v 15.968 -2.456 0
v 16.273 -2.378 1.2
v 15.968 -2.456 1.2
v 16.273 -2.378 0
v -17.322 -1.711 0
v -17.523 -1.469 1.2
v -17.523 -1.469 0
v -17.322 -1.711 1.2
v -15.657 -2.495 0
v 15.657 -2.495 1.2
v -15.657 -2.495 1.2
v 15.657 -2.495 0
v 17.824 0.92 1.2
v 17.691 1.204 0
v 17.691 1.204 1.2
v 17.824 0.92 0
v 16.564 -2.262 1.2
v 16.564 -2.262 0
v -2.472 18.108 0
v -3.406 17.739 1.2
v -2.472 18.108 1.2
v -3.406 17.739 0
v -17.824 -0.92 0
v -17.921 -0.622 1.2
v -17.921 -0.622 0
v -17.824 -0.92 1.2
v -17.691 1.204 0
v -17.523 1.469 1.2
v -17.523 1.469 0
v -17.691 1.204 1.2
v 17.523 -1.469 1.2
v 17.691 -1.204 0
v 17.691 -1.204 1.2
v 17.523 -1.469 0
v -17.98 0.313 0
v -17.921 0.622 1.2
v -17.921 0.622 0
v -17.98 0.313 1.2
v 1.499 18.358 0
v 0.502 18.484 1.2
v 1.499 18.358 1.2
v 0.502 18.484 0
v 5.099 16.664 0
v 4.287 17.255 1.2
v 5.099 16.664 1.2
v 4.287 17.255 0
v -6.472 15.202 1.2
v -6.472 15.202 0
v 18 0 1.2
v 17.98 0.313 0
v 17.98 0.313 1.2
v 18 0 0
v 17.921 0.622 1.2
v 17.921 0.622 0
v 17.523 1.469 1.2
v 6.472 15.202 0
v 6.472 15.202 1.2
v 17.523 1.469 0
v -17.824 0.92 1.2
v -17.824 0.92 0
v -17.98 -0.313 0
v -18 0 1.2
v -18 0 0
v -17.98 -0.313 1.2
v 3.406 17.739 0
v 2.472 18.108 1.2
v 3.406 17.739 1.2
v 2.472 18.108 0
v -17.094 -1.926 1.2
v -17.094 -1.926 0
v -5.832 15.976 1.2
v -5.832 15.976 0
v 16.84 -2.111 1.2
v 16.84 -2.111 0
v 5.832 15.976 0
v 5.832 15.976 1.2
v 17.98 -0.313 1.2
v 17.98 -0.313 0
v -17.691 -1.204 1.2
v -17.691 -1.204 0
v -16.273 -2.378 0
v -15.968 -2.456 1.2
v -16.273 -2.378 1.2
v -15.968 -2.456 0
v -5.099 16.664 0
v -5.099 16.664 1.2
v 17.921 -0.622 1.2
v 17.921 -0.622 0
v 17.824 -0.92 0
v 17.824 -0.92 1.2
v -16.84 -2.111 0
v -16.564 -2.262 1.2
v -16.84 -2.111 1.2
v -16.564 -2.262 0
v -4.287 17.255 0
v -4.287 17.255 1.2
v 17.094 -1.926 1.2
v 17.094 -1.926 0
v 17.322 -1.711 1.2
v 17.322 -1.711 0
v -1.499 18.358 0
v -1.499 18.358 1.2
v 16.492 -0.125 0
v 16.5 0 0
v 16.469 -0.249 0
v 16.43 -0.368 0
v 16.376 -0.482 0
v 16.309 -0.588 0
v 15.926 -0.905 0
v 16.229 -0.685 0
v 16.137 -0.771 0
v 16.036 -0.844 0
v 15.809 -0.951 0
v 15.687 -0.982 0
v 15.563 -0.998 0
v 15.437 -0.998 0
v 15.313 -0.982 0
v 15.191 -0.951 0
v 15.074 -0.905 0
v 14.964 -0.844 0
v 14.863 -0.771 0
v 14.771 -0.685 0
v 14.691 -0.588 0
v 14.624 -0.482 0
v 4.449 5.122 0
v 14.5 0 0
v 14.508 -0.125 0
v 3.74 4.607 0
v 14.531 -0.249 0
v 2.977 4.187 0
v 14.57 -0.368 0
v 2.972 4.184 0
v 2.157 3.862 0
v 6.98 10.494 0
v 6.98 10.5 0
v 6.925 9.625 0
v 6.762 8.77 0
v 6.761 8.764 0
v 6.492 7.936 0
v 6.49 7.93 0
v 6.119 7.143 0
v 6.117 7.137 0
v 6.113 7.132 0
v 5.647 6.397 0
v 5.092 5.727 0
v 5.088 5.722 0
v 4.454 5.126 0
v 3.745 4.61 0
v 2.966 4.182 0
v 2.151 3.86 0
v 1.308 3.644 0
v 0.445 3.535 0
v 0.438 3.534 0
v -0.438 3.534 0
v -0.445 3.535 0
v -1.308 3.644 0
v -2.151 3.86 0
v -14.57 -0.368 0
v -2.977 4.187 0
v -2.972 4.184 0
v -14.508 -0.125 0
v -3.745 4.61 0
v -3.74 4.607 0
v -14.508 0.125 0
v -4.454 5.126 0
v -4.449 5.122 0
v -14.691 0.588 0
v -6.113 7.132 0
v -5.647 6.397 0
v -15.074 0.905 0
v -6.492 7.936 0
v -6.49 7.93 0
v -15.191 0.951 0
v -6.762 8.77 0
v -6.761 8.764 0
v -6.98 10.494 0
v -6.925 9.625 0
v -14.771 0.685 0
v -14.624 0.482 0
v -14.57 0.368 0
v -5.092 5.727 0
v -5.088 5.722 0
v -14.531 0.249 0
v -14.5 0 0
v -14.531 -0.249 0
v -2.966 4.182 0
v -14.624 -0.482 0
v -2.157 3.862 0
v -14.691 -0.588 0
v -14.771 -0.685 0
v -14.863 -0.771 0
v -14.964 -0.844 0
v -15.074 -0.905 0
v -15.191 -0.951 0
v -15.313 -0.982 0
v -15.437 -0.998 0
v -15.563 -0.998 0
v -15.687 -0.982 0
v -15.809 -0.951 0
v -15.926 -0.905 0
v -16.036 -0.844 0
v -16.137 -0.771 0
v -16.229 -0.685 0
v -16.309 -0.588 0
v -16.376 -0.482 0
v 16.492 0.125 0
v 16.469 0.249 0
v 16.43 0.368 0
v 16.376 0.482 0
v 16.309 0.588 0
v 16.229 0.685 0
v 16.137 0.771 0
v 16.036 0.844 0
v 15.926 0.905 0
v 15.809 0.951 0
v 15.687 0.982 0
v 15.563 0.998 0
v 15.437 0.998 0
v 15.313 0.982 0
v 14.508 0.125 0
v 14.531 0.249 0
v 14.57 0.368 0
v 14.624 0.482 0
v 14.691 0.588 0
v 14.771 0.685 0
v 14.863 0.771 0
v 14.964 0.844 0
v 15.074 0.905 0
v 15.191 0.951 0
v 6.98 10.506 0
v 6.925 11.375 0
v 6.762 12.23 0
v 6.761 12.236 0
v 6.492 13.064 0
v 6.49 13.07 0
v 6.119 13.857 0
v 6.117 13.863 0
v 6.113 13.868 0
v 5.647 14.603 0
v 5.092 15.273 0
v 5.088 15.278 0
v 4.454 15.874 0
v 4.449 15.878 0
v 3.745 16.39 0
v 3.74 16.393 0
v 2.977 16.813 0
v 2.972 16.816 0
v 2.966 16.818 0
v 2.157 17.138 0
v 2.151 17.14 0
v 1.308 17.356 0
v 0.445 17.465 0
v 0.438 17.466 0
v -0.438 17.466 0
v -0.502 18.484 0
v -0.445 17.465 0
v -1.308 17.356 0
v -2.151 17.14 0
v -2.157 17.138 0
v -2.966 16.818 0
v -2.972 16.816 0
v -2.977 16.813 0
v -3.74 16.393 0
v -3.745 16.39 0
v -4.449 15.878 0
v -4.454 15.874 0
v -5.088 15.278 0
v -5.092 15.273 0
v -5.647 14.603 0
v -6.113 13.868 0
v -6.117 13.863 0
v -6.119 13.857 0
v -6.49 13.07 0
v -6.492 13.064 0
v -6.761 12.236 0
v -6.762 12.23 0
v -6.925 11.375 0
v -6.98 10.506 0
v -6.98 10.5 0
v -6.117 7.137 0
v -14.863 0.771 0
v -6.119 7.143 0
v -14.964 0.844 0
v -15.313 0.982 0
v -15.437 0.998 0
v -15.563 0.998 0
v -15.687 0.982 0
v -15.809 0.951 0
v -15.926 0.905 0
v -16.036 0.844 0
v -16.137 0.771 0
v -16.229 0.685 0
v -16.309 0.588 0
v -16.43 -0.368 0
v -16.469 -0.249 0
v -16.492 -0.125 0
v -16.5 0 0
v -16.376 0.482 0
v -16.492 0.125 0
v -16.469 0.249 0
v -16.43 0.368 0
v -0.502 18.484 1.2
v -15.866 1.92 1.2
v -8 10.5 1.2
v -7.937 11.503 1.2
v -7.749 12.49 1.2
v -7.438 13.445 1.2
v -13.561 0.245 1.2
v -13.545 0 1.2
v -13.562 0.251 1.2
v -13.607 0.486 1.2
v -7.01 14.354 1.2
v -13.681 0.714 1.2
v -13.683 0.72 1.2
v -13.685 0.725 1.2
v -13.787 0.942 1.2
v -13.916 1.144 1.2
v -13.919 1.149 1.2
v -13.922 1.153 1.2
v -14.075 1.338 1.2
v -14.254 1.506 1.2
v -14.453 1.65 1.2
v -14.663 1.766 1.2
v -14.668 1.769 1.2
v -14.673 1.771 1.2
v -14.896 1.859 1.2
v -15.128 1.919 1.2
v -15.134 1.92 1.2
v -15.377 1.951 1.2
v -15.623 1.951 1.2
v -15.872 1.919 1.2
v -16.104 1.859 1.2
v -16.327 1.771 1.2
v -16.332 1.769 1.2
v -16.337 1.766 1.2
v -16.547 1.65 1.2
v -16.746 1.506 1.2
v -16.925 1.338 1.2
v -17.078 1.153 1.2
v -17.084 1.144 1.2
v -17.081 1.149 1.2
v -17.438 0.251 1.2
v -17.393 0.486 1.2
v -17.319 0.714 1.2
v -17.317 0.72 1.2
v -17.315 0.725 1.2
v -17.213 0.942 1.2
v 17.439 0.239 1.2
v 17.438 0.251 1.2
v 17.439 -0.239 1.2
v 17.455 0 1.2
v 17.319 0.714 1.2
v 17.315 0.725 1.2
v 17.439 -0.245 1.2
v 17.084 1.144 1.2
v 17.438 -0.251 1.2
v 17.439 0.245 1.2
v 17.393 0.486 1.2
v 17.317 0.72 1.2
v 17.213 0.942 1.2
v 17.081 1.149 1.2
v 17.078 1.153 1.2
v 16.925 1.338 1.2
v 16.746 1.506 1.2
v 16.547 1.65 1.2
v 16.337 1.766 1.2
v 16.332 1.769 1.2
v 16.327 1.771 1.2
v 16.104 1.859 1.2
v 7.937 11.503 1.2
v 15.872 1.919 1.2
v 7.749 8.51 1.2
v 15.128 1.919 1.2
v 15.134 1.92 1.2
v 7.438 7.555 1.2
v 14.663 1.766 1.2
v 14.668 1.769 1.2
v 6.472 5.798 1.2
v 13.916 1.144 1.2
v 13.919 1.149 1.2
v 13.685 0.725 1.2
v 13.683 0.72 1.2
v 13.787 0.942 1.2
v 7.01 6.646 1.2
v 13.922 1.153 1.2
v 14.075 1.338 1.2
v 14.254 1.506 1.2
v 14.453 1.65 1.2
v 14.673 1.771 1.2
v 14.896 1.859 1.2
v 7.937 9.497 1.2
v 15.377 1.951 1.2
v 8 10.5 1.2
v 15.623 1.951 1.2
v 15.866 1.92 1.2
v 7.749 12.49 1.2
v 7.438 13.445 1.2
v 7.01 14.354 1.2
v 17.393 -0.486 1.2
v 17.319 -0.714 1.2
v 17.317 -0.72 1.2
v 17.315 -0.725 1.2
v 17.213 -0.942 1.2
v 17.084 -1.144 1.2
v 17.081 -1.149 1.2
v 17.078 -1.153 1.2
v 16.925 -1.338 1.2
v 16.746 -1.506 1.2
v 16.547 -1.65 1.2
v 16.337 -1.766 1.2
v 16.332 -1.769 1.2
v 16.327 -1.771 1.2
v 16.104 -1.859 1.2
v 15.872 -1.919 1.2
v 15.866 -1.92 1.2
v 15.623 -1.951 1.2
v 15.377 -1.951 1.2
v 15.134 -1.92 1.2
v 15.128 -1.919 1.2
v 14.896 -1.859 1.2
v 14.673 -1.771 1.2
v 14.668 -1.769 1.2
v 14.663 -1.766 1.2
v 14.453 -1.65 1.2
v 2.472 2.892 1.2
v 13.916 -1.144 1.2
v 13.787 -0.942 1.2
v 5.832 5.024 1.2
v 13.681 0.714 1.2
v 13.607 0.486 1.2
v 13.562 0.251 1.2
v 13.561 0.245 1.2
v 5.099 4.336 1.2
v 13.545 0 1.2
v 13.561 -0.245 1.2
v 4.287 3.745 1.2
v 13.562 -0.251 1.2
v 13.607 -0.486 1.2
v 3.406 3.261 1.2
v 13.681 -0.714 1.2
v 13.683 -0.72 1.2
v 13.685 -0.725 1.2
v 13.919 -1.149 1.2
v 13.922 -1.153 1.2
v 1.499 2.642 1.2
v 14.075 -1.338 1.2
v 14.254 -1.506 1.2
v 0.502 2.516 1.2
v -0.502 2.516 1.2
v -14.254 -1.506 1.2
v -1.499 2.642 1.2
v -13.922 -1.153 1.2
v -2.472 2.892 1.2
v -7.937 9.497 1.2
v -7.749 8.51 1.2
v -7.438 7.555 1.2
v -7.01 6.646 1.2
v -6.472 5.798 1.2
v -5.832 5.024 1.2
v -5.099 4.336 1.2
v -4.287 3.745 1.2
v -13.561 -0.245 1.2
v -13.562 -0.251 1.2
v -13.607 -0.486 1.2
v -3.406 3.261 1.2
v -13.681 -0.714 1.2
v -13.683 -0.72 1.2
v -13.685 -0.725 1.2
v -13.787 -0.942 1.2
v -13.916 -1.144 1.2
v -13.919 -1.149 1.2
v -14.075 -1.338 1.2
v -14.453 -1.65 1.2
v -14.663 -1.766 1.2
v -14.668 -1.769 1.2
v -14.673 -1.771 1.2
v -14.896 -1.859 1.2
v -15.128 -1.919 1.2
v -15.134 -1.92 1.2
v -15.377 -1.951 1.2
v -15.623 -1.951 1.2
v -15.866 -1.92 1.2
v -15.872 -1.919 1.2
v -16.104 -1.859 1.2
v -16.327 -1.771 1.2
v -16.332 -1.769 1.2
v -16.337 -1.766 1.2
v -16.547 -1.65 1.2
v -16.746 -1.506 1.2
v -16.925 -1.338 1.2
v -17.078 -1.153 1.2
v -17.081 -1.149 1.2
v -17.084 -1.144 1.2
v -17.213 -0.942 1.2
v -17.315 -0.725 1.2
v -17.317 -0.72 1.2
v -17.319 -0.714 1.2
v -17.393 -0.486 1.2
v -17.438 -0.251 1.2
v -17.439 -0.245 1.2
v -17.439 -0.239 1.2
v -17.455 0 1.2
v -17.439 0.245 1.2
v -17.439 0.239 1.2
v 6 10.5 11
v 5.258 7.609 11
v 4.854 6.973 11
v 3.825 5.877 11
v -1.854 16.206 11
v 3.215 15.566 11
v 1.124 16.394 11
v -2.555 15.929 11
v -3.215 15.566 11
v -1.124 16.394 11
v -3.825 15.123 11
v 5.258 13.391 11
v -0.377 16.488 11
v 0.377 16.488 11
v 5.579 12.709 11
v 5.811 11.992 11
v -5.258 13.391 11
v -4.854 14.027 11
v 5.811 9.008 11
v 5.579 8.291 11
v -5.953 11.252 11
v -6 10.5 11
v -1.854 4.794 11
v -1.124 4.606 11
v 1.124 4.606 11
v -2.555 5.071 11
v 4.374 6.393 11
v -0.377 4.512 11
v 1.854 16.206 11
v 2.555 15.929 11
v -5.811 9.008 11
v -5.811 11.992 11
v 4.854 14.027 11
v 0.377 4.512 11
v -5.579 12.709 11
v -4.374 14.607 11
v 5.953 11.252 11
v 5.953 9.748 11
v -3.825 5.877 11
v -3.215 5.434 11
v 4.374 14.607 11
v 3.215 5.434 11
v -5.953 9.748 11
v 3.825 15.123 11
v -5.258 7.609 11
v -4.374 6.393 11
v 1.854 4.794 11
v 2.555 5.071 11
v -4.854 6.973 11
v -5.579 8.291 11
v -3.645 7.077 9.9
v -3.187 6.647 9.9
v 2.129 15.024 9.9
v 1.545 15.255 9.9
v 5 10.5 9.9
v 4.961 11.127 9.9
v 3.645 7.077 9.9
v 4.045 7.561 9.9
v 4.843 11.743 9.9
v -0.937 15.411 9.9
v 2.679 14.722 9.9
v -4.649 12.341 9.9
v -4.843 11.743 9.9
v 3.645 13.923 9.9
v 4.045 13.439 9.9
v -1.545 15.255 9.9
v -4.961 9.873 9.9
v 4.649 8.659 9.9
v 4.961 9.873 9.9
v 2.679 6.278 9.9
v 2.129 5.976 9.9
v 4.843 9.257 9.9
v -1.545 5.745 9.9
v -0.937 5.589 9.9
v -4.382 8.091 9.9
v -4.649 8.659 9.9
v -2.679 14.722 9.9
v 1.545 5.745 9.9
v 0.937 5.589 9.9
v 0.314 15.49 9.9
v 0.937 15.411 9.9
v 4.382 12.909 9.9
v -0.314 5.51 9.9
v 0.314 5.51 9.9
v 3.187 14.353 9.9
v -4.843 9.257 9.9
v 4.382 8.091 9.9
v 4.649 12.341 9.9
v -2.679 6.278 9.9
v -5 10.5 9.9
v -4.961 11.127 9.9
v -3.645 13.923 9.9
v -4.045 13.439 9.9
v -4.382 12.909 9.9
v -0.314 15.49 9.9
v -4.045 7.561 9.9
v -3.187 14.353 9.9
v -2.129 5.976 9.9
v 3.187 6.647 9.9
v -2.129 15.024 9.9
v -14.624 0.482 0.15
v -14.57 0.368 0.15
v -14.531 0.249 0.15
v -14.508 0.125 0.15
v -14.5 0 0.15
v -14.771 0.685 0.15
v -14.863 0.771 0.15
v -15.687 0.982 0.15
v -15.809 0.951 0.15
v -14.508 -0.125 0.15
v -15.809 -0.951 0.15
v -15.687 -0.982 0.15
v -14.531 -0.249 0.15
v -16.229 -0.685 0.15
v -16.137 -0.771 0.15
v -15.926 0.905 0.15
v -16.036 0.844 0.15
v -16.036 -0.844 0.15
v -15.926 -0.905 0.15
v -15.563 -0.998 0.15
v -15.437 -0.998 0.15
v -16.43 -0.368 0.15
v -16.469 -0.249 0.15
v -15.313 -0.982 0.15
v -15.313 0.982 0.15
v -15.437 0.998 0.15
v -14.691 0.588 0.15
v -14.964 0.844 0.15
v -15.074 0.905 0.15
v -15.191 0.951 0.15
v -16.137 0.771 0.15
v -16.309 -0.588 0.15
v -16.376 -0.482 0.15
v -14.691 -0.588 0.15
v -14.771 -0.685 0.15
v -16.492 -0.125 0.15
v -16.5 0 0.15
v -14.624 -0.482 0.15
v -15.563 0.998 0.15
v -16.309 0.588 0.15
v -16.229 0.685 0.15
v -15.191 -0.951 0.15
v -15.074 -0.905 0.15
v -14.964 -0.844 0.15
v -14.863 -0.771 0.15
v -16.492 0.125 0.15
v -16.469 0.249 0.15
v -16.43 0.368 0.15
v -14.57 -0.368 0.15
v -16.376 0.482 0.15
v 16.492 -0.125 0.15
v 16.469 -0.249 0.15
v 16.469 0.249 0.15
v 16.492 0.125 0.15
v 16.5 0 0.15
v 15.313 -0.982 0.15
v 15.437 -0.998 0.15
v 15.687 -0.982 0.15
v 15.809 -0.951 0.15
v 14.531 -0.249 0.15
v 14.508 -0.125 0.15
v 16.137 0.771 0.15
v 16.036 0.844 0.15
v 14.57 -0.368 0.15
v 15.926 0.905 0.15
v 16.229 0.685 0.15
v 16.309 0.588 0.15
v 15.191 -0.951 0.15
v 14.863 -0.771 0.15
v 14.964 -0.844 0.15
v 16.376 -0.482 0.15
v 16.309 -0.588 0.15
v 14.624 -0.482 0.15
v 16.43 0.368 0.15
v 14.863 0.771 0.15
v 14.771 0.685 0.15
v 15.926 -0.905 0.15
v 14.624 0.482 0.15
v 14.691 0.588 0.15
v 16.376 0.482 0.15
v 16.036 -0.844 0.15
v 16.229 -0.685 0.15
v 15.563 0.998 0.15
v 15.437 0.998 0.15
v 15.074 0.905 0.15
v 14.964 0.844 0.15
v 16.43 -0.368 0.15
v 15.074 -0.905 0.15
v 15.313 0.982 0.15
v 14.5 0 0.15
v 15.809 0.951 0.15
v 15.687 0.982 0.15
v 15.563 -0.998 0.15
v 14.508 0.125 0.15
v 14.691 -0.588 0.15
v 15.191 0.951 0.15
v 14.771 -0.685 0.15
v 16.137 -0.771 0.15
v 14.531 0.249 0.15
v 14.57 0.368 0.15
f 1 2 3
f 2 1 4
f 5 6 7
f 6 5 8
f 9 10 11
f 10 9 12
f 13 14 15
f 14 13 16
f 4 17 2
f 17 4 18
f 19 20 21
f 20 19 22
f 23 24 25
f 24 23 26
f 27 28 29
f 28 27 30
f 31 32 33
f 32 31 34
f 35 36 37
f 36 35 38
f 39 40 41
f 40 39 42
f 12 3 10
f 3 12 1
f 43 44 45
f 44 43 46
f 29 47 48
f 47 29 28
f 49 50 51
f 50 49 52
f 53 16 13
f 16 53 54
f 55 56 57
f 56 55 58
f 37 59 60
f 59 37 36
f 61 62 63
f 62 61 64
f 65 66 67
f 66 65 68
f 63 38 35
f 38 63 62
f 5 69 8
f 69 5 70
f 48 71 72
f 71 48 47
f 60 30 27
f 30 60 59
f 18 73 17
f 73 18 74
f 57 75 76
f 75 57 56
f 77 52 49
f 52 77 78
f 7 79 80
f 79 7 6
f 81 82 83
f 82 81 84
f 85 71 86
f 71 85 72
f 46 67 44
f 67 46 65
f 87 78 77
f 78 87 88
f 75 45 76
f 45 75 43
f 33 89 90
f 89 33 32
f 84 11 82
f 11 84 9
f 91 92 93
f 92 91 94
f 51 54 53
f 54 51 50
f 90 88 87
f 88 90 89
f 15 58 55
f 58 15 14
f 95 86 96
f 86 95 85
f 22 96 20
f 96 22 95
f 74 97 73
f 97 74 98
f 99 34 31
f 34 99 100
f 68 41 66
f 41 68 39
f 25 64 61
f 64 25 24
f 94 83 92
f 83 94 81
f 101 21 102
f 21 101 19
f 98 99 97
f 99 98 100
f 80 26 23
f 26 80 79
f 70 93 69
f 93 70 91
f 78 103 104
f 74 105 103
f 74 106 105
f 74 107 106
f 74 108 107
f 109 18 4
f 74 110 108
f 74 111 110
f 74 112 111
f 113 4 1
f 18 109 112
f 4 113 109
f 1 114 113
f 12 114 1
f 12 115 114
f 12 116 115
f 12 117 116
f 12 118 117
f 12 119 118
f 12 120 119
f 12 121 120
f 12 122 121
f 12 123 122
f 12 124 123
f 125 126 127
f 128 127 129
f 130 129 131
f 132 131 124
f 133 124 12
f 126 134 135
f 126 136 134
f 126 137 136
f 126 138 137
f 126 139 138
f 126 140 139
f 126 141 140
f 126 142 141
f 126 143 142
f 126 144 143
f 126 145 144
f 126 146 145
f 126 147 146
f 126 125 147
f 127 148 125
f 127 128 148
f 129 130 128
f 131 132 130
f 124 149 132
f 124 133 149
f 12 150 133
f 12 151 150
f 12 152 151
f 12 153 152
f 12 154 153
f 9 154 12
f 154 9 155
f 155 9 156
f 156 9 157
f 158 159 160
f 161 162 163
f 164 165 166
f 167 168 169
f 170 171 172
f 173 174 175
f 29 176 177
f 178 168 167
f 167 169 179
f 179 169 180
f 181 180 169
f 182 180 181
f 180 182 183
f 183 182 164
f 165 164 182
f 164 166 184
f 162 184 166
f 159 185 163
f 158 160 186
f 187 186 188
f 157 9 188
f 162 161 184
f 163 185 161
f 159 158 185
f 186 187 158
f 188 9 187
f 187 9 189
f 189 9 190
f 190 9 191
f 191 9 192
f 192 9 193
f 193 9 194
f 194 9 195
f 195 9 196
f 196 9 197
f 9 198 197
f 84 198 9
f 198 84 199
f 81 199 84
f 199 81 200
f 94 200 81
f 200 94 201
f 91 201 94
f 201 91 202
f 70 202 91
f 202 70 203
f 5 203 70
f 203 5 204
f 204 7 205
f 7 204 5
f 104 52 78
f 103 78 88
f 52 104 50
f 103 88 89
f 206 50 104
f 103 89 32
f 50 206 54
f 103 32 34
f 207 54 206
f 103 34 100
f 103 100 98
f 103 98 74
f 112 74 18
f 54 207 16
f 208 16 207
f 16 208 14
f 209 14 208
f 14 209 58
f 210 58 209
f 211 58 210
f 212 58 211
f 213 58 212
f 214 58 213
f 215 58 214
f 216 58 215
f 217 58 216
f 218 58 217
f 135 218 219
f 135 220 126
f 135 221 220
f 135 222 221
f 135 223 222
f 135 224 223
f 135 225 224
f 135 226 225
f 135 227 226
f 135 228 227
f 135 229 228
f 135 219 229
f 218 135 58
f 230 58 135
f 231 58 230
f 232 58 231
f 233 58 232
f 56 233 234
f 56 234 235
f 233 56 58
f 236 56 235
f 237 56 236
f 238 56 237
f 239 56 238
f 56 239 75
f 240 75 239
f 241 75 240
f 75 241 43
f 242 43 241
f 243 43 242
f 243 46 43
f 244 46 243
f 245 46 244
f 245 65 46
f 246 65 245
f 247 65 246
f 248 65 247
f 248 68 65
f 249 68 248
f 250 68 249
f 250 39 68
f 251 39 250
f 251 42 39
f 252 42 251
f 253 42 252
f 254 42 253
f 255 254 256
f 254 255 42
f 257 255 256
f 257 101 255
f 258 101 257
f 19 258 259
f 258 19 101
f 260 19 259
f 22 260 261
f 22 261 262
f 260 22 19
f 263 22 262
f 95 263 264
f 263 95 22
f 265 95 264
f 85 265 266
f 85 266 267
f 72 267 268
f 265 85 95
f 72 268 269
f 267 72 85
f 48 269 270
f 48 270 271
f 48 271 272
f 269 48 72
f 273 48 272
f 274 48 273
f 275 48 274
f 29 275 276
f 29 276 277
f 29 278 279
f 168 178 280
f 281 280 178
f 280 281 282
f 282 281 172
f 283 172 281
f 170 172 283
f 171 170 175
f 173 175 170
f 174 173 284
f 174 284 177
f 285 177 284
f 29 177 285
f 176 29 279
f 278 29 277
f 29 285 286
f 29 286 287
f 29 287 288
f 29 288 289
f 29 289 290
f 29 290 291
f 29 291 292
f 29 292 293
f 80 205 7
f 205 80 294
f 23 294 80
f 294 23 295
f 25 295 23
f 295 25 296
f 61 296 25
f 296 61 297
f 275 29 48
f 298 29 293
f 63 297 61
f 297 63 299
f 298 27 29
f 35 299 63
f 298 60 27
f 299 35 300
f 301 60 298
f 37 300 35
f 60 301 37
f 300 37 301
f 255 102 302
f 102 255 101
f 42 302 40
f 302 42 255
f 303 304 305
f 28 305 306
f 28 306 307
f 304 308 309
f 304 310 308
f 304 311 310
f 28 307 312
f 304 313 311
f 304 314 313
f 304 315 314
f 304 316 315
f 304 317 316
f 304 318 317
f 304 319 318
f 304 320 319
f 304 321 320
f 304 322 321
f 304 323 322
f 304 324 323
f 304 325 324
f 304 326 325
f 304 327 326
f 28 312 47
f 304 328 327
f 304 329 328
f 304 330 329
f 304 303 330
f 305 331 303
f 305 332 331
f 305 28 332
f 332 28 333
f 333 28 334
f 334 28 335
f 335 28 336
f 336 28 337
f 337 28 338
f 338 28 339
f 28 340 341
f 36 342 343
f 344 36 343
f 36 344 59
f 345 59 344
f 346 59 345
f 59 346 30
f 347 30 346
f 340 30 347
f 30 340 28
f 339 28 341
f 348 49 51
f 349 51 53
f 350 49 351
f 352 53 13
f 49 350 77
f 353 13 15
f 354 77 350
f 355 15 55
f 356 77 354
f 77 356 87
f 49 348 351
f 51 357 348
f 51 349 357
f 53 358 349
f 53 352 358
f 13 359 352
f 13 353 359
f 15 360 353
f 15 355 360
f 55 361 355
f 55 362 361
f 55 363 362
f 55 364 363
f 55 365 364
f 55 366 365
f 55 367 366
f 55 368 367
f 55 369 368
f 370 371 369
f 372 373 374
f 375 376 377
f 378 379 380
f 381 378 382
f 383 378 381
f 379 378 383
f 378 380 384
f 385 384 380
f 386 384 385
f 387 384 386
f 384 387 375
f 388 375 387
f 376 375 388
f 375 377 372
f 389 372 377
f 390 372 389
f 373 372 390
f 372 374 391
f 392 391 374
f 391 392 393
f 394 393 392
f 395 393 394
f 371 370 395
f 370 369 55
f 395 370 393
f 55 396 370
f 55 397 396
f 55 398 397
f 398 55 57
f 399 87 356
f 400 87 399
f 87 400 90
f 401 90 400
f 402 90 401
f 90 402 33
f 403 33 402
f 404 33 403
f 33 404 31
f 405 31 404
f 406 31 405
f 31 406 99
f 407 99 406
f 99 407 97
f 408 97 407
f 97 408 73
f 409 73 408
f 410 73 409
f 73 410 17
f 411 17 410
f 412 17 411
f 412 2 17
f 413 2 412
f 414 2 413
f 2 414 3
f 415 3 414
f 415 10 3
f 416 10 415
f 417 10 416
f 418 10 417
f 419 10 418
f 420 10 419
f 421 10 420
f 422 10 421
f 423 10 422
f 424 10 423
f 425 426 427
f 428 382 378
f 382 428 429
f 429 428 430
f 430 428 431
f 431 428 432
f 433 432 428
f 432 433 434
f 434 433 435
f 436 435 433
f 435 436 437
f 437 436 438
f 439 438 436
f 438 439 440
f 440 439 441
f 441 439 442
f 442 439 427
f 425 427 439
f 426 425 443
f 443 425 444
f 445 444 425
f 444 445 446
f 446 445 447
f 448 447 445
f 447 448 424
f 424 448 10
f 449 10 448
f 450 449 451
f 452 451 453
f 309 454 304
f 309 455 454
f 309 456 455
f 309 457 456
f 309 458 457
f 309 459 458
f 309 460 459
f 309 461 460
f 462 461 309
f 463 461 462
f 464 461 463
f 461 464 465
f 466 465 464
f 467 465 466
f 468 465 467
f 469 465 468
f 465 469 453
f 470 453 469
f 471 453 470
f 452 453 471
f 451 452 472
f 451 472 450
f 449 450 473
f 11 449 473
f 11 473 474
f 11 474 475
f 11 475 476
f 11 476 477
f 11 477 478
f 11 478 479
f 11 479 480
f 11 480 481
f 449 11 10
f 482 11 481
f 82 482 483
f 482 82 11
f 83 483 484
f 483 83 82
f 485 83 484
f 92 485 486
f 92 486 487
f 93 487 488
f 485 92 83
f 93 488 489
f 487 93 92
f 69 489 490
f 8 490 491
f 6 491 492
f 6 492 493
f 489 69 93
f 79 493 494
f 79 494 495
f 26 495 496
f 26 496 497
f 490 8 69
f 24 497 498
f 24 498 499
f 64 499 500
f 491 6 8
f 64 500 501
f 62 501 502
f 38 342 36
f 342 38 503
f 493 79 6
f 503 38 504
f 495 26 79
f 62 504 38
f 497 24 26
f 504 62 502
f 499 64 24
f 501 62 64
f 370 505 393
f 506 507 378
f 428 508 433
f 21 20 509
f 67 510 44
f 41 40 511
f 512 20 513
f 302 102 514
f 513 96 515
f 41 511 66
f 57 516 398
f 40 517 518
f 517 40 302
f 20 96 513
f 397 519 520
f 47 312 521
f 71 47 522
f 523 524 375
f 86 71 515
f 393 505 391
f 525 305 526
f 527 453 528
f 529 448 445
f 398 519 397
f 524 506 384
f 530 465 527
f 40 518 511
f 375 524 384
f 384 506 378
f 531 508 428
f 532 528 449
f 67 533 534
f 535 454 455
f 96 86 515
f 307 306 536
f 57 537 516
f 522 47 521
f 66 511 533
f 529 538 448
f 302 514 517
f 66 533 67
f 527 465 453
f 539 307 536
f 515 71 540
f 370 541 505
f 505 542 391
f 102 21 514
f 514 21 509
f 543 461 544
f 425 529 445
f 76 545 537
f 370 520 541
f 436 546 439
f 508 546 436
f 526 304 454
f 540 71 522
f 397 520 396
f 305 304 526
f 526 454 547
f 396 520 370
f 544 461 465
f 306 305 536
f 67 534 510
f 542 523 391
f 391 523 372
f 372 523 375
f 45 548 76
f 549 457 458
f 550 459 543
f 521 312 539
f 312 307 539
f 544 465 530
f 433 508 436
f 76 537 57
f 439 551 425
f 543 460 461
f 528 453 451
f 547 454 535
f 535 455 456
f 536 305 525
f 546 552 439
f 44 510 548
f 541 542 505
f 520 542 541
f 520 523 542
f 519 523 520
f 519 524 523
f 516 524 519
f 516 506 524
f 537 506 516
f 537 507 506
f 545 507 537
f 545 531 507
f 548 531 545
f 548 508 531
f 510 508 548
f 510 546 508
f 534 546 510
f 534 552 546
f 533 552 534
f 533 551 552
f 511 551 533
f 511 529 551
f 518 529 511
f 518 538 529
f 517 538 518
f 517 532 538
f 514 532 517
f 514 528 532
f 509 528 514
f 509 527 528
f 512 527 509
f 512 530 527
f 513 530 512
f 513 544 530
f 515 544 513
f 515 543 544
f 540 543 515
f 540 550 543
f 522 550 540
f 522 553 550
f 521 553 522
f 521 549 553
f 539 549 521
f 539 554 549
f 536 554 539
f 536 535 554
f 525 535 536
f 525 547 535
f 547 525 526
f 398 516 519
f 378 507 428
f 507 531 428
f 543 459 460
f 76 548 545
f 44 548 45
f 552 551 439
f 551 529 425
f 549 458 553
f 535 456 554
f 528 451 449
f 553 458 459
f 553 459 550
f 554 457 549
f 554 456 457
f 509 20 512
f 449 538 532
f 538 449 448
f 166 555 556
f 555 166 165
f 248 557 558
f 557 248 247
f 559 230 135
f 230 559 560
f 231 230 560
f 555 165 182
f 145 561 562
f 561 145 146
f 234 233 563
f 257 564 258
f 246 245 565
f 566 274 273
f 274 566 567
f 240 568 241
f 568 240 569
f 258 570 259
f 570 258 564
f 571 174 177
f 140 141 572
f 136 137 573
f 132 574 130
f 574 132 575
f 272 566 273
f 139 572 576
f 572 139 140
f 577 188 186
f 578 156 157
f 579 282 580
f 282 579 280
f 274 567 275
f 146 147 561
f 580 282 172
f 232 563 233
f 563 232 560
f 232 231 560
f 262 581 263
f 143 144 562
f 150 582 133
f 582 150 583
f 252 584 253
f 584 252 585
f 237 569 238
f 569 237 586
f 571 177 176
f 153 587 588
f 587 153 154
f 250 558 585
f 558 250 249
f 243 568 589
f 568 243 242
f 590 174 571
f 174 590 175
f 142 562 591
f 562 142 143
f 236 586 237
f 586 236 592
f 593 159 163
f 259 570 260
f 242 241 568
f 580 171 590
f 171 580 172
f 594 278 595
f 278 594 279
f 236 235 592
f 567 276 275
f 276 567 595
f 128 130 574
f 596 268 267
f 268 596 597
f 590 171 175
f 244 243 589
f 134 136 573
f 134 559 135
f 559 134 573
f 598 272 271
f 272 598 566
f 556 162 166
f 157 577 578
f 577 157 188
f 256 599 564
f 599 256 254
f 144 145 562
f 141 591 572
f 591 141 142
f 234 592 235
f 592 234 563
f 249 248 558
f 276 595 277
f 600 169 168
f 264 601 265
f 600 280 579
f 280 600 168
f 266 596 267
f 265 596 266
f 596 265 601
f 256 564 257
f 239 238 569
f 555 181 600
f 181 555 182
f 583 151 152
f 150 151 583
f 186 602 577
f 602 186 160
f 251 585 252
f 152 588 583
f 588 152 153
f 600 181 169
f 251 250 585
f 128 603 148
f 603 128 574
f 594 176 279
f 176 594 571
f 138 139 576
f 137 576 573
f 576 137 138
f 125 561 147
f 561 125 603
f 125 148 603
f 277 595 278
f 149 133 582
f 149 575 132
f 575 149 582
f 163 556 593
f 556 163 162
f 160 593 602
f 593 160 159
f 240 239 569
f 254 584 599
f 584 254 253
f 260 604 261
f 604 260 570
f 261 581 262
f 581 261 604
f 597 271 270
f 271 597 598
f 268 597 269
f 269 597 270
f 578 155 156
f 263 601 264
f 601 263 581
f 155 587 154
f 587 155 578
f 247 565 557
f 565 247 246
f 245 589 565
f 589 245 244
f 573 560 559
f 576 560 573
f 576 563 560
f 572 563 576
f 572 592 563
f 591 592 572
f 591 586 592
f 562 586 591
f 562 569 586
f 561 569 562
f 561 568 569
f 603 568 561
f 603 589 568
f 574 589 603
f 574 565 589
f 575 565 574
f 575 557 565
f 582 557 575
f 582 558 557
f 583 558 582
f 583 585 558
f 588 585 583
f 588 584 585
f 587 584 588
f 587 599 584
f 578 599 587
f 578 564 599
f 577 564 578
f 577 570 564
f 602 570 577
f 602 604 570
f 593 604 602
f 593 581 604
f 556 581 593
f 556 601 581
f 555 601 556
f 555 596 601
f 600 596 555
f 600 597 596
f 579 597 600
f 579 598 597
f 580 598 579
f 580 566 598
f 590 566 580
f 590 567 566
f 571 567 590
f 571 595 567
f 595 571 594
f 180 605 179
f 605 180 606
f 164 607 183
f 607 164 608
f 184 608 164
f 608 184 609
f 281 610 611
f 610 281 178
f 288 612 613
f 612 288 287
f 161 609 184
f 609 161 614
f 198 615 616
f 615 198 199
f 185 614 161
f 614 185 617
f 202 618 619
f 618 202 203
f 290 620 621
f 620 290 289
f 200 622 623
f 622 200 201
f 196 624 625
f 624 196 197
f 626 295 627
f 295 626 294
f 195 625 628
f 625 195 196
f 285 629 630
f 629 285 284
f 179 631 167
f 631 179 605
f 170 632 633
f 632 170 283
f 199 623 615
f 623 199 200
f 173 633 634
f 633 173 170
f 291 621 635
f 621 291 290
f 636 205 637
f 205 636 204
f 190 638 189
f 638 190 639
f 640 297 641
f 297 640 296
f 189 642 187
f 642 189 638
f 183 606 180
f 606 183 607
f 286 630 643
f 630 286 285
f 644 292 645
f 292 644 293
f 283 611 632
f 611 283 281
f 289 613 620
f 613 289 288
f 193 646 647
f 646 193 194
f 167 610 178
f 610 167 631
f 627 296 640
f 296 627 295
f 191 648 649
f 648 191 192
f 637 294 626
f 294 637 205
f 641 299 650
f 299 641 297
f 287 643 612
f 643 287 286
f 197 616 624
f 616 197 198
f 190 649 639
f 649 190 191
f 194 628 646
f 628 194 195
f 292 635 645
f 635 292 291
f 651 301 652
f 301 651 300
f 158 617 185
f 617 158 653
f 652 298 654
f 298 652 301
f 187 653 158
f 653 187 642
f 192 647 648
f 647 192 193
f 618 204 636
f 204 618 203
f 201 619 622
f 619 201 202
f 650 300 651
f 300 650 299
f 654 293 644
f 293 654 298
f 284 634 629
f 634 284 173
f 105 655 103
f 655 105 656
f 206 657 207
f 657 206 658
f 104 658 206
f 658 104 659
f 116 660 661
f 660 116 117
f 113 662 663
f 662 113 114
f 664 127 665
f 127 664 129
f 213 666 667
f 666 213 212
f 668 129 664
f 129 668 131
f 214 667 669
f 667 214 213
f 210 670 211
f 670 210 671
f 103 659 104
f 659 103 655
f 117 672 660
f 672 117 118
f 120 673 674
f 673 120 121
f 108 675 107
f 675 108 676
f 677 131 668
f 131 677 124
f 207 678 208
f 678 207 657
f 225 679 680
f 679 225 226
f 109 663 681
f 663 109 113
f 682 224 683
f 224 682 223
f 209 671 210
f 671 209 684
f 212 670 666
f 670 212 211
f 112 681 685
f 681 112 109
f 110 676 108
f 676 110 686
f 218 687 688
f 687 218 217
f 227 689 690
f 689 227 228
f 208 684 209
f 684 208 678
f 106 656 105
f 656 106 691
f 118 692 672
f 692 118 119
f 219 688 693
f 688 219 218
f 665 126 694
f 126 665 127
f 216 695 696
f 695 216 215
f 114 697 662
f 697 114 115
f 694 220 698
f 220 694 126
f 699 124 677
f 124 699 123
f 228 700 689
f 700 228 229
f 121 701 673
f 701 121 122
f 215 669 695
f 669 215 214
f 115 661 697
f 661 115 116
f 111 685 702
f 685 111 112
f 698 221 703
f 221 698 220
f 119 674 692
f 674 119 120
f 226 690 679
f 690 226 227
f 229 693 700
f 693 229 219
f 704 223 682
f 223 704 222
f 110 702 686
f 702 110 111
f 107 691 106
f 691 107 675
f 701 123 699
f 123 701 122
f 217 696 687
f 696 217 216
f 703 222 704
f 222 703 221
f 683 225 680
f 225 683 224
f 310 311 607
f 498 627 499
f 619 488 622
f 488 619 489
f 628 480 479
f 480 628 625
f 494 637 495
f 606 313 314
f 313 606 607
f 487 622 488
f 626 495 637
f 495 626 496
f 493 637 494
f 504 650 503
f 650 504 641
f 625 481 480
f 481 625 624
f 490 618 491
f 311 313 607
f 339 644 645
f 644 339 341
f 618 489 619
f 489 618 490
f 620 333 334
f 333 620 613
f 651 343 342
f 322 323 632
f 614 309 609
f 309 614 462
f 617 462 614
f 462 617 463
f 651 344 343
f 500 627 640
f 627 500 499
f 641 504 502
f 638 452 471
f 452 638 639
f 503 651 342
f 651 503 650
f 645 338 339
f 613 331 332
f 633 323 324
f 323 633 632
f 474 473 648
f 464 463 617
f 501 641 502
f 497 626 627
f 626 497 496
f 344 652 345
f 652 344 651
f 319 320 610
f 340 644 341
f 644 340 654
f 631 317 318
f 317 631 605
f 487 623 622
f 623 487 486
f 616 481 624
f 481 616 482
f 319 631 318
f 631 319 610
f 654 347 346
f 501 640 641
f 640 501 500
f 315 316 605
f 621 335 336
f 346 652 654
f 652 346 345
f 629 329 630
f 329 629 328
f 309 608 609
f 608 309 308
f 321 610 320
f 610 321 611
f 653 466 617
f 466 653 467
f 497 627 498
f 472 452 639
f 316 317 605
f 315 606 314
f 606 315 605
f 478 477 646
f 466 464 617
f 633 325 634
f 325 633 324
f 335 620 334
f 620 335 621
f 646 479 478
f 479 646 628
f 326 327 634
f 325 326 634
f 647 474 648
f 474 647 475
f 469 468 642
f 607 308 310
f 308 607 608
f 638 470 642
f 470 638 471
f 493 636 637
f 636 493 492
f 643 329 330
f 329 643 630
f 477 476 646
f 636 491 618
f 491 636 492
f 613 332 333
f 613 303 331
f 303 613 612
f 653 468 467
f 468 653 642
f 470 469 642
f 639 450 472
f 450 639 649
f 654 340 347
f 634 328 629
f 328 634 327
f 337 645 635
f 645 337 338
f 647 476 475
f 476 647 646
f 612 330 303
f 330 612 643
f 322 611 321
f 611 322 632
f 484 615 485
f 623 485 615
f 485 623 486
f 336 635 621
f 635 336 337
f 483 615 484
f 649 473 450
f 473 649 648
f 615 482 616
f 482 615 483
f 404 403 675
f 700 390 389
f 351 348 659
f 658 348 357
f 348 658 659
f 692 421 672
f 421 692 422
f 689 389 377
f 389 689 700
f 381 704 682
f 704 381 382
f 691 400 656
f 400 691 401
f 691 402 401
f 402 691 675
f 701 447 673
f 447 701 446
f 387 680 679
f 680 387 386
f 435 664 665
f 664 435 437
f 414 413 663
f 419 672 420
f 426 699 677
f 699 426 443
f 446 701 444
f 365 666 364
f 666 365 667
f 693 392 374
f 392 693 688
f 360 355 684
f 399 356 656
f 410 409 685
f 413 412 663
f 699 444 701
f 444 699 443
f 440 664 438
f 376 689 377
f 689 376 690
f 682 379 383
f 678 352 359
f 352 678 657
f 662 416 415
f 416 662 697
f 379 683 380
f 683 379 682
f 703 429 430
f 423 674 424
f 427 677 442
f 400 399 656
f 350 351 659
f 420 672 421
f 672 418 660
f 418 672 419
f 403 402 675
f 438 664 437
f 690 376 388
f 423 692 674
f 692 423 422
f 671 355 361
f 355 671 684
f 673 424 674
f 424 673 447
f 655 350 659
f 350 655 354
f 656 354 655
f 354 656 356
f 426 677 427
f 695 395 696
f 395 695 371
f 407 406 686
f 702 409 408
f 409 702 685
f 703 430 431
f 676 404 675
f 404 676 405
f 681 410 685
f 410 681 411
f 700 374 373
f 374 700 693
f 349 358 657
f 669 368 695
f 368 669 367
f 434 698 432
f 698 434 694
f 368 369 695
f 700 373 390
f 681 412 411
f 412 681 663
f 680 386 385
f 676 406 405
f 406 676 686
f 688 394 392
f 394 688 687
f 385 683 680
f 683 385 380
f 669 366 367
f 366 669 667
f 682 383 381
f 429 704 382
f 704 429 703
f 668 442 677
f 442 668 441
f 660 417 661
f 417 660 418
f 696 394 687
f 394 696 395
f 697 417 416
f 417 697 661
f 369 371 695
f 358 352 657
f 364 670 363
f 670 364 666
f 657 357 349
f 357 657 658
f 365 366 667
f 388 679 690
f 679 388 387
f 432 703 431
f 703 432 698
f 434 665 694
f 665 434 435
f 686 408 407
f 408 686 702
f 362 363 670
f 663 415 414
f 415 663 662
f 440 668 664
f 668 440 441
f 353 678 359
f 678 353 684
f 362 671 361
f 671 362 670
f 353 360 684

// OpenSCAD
$fn=50;
screw_hole=2;
screw_shaft_depth=0.2;
screw_head_dia=4;
screw_head_depth=1;

screw_spacing = 31;
reset_rotor_spacing = 10+0.5;
reset_rotor_dia = 14;
reset_rotor_upper_dia = 10;
reset_rotor_height = 10;
reset_rotor_cover_thickness = 1;

difference()
{
    union()
    {
        base_thickness = screw_shaft_depth+screw_head_depth;
        linear_extrude(height = base_thickness)
            hull()
            {
                translate([-screw_spacing/2,0,0])
                    circle(d=screw_head_dia+1);
                translate([screw_spacing/2,0,0])
                    circle(d=screw_head_dia+1);
                translate([0,reset_rotor_spacing,0])
                    circle(d=reset_rotor_dia+reset_rotor_cover_thickness*2);
            }

        translate([0,reset_rotor_spacing,base_thickness])
            cylinder(d1=reset_rotor_dia+reset_rotor_cover_thickness*2, d2=reset_rotor_upper_dia+reset_rotor_cover_thickness*2, h=reset_rotor_height-base_thickness+1);
    }

    translate([0,reset_rotor_spacing,-0.1])
        cylinder(d1=reset_rotor_dia, d2=reset_rotor_upper_dia, h=reset_rotor_height);

    translate([-screw_spacing/2,0,-0.01])
        cylinder(d=screw_hole, h=screw_shaft_depth);
    translate([screw_spacing/2,0,-0.01])
        cylinder(d=screw_hole, h=screw_shaft_depth);
    translate([-screw_spacing/2,0,screw_shaft_depth-0.05])
        cylinder(d1=screw_hole,d2=screw_head_dia, h=screw_head_depth+0.1);
    translate([screw_spacing/2,0,screw_shaft_depth-0.05])
        cylinder(d1=screw_hole,d2=screw_head_dia, h=screw_head_depth+0.1);
}
